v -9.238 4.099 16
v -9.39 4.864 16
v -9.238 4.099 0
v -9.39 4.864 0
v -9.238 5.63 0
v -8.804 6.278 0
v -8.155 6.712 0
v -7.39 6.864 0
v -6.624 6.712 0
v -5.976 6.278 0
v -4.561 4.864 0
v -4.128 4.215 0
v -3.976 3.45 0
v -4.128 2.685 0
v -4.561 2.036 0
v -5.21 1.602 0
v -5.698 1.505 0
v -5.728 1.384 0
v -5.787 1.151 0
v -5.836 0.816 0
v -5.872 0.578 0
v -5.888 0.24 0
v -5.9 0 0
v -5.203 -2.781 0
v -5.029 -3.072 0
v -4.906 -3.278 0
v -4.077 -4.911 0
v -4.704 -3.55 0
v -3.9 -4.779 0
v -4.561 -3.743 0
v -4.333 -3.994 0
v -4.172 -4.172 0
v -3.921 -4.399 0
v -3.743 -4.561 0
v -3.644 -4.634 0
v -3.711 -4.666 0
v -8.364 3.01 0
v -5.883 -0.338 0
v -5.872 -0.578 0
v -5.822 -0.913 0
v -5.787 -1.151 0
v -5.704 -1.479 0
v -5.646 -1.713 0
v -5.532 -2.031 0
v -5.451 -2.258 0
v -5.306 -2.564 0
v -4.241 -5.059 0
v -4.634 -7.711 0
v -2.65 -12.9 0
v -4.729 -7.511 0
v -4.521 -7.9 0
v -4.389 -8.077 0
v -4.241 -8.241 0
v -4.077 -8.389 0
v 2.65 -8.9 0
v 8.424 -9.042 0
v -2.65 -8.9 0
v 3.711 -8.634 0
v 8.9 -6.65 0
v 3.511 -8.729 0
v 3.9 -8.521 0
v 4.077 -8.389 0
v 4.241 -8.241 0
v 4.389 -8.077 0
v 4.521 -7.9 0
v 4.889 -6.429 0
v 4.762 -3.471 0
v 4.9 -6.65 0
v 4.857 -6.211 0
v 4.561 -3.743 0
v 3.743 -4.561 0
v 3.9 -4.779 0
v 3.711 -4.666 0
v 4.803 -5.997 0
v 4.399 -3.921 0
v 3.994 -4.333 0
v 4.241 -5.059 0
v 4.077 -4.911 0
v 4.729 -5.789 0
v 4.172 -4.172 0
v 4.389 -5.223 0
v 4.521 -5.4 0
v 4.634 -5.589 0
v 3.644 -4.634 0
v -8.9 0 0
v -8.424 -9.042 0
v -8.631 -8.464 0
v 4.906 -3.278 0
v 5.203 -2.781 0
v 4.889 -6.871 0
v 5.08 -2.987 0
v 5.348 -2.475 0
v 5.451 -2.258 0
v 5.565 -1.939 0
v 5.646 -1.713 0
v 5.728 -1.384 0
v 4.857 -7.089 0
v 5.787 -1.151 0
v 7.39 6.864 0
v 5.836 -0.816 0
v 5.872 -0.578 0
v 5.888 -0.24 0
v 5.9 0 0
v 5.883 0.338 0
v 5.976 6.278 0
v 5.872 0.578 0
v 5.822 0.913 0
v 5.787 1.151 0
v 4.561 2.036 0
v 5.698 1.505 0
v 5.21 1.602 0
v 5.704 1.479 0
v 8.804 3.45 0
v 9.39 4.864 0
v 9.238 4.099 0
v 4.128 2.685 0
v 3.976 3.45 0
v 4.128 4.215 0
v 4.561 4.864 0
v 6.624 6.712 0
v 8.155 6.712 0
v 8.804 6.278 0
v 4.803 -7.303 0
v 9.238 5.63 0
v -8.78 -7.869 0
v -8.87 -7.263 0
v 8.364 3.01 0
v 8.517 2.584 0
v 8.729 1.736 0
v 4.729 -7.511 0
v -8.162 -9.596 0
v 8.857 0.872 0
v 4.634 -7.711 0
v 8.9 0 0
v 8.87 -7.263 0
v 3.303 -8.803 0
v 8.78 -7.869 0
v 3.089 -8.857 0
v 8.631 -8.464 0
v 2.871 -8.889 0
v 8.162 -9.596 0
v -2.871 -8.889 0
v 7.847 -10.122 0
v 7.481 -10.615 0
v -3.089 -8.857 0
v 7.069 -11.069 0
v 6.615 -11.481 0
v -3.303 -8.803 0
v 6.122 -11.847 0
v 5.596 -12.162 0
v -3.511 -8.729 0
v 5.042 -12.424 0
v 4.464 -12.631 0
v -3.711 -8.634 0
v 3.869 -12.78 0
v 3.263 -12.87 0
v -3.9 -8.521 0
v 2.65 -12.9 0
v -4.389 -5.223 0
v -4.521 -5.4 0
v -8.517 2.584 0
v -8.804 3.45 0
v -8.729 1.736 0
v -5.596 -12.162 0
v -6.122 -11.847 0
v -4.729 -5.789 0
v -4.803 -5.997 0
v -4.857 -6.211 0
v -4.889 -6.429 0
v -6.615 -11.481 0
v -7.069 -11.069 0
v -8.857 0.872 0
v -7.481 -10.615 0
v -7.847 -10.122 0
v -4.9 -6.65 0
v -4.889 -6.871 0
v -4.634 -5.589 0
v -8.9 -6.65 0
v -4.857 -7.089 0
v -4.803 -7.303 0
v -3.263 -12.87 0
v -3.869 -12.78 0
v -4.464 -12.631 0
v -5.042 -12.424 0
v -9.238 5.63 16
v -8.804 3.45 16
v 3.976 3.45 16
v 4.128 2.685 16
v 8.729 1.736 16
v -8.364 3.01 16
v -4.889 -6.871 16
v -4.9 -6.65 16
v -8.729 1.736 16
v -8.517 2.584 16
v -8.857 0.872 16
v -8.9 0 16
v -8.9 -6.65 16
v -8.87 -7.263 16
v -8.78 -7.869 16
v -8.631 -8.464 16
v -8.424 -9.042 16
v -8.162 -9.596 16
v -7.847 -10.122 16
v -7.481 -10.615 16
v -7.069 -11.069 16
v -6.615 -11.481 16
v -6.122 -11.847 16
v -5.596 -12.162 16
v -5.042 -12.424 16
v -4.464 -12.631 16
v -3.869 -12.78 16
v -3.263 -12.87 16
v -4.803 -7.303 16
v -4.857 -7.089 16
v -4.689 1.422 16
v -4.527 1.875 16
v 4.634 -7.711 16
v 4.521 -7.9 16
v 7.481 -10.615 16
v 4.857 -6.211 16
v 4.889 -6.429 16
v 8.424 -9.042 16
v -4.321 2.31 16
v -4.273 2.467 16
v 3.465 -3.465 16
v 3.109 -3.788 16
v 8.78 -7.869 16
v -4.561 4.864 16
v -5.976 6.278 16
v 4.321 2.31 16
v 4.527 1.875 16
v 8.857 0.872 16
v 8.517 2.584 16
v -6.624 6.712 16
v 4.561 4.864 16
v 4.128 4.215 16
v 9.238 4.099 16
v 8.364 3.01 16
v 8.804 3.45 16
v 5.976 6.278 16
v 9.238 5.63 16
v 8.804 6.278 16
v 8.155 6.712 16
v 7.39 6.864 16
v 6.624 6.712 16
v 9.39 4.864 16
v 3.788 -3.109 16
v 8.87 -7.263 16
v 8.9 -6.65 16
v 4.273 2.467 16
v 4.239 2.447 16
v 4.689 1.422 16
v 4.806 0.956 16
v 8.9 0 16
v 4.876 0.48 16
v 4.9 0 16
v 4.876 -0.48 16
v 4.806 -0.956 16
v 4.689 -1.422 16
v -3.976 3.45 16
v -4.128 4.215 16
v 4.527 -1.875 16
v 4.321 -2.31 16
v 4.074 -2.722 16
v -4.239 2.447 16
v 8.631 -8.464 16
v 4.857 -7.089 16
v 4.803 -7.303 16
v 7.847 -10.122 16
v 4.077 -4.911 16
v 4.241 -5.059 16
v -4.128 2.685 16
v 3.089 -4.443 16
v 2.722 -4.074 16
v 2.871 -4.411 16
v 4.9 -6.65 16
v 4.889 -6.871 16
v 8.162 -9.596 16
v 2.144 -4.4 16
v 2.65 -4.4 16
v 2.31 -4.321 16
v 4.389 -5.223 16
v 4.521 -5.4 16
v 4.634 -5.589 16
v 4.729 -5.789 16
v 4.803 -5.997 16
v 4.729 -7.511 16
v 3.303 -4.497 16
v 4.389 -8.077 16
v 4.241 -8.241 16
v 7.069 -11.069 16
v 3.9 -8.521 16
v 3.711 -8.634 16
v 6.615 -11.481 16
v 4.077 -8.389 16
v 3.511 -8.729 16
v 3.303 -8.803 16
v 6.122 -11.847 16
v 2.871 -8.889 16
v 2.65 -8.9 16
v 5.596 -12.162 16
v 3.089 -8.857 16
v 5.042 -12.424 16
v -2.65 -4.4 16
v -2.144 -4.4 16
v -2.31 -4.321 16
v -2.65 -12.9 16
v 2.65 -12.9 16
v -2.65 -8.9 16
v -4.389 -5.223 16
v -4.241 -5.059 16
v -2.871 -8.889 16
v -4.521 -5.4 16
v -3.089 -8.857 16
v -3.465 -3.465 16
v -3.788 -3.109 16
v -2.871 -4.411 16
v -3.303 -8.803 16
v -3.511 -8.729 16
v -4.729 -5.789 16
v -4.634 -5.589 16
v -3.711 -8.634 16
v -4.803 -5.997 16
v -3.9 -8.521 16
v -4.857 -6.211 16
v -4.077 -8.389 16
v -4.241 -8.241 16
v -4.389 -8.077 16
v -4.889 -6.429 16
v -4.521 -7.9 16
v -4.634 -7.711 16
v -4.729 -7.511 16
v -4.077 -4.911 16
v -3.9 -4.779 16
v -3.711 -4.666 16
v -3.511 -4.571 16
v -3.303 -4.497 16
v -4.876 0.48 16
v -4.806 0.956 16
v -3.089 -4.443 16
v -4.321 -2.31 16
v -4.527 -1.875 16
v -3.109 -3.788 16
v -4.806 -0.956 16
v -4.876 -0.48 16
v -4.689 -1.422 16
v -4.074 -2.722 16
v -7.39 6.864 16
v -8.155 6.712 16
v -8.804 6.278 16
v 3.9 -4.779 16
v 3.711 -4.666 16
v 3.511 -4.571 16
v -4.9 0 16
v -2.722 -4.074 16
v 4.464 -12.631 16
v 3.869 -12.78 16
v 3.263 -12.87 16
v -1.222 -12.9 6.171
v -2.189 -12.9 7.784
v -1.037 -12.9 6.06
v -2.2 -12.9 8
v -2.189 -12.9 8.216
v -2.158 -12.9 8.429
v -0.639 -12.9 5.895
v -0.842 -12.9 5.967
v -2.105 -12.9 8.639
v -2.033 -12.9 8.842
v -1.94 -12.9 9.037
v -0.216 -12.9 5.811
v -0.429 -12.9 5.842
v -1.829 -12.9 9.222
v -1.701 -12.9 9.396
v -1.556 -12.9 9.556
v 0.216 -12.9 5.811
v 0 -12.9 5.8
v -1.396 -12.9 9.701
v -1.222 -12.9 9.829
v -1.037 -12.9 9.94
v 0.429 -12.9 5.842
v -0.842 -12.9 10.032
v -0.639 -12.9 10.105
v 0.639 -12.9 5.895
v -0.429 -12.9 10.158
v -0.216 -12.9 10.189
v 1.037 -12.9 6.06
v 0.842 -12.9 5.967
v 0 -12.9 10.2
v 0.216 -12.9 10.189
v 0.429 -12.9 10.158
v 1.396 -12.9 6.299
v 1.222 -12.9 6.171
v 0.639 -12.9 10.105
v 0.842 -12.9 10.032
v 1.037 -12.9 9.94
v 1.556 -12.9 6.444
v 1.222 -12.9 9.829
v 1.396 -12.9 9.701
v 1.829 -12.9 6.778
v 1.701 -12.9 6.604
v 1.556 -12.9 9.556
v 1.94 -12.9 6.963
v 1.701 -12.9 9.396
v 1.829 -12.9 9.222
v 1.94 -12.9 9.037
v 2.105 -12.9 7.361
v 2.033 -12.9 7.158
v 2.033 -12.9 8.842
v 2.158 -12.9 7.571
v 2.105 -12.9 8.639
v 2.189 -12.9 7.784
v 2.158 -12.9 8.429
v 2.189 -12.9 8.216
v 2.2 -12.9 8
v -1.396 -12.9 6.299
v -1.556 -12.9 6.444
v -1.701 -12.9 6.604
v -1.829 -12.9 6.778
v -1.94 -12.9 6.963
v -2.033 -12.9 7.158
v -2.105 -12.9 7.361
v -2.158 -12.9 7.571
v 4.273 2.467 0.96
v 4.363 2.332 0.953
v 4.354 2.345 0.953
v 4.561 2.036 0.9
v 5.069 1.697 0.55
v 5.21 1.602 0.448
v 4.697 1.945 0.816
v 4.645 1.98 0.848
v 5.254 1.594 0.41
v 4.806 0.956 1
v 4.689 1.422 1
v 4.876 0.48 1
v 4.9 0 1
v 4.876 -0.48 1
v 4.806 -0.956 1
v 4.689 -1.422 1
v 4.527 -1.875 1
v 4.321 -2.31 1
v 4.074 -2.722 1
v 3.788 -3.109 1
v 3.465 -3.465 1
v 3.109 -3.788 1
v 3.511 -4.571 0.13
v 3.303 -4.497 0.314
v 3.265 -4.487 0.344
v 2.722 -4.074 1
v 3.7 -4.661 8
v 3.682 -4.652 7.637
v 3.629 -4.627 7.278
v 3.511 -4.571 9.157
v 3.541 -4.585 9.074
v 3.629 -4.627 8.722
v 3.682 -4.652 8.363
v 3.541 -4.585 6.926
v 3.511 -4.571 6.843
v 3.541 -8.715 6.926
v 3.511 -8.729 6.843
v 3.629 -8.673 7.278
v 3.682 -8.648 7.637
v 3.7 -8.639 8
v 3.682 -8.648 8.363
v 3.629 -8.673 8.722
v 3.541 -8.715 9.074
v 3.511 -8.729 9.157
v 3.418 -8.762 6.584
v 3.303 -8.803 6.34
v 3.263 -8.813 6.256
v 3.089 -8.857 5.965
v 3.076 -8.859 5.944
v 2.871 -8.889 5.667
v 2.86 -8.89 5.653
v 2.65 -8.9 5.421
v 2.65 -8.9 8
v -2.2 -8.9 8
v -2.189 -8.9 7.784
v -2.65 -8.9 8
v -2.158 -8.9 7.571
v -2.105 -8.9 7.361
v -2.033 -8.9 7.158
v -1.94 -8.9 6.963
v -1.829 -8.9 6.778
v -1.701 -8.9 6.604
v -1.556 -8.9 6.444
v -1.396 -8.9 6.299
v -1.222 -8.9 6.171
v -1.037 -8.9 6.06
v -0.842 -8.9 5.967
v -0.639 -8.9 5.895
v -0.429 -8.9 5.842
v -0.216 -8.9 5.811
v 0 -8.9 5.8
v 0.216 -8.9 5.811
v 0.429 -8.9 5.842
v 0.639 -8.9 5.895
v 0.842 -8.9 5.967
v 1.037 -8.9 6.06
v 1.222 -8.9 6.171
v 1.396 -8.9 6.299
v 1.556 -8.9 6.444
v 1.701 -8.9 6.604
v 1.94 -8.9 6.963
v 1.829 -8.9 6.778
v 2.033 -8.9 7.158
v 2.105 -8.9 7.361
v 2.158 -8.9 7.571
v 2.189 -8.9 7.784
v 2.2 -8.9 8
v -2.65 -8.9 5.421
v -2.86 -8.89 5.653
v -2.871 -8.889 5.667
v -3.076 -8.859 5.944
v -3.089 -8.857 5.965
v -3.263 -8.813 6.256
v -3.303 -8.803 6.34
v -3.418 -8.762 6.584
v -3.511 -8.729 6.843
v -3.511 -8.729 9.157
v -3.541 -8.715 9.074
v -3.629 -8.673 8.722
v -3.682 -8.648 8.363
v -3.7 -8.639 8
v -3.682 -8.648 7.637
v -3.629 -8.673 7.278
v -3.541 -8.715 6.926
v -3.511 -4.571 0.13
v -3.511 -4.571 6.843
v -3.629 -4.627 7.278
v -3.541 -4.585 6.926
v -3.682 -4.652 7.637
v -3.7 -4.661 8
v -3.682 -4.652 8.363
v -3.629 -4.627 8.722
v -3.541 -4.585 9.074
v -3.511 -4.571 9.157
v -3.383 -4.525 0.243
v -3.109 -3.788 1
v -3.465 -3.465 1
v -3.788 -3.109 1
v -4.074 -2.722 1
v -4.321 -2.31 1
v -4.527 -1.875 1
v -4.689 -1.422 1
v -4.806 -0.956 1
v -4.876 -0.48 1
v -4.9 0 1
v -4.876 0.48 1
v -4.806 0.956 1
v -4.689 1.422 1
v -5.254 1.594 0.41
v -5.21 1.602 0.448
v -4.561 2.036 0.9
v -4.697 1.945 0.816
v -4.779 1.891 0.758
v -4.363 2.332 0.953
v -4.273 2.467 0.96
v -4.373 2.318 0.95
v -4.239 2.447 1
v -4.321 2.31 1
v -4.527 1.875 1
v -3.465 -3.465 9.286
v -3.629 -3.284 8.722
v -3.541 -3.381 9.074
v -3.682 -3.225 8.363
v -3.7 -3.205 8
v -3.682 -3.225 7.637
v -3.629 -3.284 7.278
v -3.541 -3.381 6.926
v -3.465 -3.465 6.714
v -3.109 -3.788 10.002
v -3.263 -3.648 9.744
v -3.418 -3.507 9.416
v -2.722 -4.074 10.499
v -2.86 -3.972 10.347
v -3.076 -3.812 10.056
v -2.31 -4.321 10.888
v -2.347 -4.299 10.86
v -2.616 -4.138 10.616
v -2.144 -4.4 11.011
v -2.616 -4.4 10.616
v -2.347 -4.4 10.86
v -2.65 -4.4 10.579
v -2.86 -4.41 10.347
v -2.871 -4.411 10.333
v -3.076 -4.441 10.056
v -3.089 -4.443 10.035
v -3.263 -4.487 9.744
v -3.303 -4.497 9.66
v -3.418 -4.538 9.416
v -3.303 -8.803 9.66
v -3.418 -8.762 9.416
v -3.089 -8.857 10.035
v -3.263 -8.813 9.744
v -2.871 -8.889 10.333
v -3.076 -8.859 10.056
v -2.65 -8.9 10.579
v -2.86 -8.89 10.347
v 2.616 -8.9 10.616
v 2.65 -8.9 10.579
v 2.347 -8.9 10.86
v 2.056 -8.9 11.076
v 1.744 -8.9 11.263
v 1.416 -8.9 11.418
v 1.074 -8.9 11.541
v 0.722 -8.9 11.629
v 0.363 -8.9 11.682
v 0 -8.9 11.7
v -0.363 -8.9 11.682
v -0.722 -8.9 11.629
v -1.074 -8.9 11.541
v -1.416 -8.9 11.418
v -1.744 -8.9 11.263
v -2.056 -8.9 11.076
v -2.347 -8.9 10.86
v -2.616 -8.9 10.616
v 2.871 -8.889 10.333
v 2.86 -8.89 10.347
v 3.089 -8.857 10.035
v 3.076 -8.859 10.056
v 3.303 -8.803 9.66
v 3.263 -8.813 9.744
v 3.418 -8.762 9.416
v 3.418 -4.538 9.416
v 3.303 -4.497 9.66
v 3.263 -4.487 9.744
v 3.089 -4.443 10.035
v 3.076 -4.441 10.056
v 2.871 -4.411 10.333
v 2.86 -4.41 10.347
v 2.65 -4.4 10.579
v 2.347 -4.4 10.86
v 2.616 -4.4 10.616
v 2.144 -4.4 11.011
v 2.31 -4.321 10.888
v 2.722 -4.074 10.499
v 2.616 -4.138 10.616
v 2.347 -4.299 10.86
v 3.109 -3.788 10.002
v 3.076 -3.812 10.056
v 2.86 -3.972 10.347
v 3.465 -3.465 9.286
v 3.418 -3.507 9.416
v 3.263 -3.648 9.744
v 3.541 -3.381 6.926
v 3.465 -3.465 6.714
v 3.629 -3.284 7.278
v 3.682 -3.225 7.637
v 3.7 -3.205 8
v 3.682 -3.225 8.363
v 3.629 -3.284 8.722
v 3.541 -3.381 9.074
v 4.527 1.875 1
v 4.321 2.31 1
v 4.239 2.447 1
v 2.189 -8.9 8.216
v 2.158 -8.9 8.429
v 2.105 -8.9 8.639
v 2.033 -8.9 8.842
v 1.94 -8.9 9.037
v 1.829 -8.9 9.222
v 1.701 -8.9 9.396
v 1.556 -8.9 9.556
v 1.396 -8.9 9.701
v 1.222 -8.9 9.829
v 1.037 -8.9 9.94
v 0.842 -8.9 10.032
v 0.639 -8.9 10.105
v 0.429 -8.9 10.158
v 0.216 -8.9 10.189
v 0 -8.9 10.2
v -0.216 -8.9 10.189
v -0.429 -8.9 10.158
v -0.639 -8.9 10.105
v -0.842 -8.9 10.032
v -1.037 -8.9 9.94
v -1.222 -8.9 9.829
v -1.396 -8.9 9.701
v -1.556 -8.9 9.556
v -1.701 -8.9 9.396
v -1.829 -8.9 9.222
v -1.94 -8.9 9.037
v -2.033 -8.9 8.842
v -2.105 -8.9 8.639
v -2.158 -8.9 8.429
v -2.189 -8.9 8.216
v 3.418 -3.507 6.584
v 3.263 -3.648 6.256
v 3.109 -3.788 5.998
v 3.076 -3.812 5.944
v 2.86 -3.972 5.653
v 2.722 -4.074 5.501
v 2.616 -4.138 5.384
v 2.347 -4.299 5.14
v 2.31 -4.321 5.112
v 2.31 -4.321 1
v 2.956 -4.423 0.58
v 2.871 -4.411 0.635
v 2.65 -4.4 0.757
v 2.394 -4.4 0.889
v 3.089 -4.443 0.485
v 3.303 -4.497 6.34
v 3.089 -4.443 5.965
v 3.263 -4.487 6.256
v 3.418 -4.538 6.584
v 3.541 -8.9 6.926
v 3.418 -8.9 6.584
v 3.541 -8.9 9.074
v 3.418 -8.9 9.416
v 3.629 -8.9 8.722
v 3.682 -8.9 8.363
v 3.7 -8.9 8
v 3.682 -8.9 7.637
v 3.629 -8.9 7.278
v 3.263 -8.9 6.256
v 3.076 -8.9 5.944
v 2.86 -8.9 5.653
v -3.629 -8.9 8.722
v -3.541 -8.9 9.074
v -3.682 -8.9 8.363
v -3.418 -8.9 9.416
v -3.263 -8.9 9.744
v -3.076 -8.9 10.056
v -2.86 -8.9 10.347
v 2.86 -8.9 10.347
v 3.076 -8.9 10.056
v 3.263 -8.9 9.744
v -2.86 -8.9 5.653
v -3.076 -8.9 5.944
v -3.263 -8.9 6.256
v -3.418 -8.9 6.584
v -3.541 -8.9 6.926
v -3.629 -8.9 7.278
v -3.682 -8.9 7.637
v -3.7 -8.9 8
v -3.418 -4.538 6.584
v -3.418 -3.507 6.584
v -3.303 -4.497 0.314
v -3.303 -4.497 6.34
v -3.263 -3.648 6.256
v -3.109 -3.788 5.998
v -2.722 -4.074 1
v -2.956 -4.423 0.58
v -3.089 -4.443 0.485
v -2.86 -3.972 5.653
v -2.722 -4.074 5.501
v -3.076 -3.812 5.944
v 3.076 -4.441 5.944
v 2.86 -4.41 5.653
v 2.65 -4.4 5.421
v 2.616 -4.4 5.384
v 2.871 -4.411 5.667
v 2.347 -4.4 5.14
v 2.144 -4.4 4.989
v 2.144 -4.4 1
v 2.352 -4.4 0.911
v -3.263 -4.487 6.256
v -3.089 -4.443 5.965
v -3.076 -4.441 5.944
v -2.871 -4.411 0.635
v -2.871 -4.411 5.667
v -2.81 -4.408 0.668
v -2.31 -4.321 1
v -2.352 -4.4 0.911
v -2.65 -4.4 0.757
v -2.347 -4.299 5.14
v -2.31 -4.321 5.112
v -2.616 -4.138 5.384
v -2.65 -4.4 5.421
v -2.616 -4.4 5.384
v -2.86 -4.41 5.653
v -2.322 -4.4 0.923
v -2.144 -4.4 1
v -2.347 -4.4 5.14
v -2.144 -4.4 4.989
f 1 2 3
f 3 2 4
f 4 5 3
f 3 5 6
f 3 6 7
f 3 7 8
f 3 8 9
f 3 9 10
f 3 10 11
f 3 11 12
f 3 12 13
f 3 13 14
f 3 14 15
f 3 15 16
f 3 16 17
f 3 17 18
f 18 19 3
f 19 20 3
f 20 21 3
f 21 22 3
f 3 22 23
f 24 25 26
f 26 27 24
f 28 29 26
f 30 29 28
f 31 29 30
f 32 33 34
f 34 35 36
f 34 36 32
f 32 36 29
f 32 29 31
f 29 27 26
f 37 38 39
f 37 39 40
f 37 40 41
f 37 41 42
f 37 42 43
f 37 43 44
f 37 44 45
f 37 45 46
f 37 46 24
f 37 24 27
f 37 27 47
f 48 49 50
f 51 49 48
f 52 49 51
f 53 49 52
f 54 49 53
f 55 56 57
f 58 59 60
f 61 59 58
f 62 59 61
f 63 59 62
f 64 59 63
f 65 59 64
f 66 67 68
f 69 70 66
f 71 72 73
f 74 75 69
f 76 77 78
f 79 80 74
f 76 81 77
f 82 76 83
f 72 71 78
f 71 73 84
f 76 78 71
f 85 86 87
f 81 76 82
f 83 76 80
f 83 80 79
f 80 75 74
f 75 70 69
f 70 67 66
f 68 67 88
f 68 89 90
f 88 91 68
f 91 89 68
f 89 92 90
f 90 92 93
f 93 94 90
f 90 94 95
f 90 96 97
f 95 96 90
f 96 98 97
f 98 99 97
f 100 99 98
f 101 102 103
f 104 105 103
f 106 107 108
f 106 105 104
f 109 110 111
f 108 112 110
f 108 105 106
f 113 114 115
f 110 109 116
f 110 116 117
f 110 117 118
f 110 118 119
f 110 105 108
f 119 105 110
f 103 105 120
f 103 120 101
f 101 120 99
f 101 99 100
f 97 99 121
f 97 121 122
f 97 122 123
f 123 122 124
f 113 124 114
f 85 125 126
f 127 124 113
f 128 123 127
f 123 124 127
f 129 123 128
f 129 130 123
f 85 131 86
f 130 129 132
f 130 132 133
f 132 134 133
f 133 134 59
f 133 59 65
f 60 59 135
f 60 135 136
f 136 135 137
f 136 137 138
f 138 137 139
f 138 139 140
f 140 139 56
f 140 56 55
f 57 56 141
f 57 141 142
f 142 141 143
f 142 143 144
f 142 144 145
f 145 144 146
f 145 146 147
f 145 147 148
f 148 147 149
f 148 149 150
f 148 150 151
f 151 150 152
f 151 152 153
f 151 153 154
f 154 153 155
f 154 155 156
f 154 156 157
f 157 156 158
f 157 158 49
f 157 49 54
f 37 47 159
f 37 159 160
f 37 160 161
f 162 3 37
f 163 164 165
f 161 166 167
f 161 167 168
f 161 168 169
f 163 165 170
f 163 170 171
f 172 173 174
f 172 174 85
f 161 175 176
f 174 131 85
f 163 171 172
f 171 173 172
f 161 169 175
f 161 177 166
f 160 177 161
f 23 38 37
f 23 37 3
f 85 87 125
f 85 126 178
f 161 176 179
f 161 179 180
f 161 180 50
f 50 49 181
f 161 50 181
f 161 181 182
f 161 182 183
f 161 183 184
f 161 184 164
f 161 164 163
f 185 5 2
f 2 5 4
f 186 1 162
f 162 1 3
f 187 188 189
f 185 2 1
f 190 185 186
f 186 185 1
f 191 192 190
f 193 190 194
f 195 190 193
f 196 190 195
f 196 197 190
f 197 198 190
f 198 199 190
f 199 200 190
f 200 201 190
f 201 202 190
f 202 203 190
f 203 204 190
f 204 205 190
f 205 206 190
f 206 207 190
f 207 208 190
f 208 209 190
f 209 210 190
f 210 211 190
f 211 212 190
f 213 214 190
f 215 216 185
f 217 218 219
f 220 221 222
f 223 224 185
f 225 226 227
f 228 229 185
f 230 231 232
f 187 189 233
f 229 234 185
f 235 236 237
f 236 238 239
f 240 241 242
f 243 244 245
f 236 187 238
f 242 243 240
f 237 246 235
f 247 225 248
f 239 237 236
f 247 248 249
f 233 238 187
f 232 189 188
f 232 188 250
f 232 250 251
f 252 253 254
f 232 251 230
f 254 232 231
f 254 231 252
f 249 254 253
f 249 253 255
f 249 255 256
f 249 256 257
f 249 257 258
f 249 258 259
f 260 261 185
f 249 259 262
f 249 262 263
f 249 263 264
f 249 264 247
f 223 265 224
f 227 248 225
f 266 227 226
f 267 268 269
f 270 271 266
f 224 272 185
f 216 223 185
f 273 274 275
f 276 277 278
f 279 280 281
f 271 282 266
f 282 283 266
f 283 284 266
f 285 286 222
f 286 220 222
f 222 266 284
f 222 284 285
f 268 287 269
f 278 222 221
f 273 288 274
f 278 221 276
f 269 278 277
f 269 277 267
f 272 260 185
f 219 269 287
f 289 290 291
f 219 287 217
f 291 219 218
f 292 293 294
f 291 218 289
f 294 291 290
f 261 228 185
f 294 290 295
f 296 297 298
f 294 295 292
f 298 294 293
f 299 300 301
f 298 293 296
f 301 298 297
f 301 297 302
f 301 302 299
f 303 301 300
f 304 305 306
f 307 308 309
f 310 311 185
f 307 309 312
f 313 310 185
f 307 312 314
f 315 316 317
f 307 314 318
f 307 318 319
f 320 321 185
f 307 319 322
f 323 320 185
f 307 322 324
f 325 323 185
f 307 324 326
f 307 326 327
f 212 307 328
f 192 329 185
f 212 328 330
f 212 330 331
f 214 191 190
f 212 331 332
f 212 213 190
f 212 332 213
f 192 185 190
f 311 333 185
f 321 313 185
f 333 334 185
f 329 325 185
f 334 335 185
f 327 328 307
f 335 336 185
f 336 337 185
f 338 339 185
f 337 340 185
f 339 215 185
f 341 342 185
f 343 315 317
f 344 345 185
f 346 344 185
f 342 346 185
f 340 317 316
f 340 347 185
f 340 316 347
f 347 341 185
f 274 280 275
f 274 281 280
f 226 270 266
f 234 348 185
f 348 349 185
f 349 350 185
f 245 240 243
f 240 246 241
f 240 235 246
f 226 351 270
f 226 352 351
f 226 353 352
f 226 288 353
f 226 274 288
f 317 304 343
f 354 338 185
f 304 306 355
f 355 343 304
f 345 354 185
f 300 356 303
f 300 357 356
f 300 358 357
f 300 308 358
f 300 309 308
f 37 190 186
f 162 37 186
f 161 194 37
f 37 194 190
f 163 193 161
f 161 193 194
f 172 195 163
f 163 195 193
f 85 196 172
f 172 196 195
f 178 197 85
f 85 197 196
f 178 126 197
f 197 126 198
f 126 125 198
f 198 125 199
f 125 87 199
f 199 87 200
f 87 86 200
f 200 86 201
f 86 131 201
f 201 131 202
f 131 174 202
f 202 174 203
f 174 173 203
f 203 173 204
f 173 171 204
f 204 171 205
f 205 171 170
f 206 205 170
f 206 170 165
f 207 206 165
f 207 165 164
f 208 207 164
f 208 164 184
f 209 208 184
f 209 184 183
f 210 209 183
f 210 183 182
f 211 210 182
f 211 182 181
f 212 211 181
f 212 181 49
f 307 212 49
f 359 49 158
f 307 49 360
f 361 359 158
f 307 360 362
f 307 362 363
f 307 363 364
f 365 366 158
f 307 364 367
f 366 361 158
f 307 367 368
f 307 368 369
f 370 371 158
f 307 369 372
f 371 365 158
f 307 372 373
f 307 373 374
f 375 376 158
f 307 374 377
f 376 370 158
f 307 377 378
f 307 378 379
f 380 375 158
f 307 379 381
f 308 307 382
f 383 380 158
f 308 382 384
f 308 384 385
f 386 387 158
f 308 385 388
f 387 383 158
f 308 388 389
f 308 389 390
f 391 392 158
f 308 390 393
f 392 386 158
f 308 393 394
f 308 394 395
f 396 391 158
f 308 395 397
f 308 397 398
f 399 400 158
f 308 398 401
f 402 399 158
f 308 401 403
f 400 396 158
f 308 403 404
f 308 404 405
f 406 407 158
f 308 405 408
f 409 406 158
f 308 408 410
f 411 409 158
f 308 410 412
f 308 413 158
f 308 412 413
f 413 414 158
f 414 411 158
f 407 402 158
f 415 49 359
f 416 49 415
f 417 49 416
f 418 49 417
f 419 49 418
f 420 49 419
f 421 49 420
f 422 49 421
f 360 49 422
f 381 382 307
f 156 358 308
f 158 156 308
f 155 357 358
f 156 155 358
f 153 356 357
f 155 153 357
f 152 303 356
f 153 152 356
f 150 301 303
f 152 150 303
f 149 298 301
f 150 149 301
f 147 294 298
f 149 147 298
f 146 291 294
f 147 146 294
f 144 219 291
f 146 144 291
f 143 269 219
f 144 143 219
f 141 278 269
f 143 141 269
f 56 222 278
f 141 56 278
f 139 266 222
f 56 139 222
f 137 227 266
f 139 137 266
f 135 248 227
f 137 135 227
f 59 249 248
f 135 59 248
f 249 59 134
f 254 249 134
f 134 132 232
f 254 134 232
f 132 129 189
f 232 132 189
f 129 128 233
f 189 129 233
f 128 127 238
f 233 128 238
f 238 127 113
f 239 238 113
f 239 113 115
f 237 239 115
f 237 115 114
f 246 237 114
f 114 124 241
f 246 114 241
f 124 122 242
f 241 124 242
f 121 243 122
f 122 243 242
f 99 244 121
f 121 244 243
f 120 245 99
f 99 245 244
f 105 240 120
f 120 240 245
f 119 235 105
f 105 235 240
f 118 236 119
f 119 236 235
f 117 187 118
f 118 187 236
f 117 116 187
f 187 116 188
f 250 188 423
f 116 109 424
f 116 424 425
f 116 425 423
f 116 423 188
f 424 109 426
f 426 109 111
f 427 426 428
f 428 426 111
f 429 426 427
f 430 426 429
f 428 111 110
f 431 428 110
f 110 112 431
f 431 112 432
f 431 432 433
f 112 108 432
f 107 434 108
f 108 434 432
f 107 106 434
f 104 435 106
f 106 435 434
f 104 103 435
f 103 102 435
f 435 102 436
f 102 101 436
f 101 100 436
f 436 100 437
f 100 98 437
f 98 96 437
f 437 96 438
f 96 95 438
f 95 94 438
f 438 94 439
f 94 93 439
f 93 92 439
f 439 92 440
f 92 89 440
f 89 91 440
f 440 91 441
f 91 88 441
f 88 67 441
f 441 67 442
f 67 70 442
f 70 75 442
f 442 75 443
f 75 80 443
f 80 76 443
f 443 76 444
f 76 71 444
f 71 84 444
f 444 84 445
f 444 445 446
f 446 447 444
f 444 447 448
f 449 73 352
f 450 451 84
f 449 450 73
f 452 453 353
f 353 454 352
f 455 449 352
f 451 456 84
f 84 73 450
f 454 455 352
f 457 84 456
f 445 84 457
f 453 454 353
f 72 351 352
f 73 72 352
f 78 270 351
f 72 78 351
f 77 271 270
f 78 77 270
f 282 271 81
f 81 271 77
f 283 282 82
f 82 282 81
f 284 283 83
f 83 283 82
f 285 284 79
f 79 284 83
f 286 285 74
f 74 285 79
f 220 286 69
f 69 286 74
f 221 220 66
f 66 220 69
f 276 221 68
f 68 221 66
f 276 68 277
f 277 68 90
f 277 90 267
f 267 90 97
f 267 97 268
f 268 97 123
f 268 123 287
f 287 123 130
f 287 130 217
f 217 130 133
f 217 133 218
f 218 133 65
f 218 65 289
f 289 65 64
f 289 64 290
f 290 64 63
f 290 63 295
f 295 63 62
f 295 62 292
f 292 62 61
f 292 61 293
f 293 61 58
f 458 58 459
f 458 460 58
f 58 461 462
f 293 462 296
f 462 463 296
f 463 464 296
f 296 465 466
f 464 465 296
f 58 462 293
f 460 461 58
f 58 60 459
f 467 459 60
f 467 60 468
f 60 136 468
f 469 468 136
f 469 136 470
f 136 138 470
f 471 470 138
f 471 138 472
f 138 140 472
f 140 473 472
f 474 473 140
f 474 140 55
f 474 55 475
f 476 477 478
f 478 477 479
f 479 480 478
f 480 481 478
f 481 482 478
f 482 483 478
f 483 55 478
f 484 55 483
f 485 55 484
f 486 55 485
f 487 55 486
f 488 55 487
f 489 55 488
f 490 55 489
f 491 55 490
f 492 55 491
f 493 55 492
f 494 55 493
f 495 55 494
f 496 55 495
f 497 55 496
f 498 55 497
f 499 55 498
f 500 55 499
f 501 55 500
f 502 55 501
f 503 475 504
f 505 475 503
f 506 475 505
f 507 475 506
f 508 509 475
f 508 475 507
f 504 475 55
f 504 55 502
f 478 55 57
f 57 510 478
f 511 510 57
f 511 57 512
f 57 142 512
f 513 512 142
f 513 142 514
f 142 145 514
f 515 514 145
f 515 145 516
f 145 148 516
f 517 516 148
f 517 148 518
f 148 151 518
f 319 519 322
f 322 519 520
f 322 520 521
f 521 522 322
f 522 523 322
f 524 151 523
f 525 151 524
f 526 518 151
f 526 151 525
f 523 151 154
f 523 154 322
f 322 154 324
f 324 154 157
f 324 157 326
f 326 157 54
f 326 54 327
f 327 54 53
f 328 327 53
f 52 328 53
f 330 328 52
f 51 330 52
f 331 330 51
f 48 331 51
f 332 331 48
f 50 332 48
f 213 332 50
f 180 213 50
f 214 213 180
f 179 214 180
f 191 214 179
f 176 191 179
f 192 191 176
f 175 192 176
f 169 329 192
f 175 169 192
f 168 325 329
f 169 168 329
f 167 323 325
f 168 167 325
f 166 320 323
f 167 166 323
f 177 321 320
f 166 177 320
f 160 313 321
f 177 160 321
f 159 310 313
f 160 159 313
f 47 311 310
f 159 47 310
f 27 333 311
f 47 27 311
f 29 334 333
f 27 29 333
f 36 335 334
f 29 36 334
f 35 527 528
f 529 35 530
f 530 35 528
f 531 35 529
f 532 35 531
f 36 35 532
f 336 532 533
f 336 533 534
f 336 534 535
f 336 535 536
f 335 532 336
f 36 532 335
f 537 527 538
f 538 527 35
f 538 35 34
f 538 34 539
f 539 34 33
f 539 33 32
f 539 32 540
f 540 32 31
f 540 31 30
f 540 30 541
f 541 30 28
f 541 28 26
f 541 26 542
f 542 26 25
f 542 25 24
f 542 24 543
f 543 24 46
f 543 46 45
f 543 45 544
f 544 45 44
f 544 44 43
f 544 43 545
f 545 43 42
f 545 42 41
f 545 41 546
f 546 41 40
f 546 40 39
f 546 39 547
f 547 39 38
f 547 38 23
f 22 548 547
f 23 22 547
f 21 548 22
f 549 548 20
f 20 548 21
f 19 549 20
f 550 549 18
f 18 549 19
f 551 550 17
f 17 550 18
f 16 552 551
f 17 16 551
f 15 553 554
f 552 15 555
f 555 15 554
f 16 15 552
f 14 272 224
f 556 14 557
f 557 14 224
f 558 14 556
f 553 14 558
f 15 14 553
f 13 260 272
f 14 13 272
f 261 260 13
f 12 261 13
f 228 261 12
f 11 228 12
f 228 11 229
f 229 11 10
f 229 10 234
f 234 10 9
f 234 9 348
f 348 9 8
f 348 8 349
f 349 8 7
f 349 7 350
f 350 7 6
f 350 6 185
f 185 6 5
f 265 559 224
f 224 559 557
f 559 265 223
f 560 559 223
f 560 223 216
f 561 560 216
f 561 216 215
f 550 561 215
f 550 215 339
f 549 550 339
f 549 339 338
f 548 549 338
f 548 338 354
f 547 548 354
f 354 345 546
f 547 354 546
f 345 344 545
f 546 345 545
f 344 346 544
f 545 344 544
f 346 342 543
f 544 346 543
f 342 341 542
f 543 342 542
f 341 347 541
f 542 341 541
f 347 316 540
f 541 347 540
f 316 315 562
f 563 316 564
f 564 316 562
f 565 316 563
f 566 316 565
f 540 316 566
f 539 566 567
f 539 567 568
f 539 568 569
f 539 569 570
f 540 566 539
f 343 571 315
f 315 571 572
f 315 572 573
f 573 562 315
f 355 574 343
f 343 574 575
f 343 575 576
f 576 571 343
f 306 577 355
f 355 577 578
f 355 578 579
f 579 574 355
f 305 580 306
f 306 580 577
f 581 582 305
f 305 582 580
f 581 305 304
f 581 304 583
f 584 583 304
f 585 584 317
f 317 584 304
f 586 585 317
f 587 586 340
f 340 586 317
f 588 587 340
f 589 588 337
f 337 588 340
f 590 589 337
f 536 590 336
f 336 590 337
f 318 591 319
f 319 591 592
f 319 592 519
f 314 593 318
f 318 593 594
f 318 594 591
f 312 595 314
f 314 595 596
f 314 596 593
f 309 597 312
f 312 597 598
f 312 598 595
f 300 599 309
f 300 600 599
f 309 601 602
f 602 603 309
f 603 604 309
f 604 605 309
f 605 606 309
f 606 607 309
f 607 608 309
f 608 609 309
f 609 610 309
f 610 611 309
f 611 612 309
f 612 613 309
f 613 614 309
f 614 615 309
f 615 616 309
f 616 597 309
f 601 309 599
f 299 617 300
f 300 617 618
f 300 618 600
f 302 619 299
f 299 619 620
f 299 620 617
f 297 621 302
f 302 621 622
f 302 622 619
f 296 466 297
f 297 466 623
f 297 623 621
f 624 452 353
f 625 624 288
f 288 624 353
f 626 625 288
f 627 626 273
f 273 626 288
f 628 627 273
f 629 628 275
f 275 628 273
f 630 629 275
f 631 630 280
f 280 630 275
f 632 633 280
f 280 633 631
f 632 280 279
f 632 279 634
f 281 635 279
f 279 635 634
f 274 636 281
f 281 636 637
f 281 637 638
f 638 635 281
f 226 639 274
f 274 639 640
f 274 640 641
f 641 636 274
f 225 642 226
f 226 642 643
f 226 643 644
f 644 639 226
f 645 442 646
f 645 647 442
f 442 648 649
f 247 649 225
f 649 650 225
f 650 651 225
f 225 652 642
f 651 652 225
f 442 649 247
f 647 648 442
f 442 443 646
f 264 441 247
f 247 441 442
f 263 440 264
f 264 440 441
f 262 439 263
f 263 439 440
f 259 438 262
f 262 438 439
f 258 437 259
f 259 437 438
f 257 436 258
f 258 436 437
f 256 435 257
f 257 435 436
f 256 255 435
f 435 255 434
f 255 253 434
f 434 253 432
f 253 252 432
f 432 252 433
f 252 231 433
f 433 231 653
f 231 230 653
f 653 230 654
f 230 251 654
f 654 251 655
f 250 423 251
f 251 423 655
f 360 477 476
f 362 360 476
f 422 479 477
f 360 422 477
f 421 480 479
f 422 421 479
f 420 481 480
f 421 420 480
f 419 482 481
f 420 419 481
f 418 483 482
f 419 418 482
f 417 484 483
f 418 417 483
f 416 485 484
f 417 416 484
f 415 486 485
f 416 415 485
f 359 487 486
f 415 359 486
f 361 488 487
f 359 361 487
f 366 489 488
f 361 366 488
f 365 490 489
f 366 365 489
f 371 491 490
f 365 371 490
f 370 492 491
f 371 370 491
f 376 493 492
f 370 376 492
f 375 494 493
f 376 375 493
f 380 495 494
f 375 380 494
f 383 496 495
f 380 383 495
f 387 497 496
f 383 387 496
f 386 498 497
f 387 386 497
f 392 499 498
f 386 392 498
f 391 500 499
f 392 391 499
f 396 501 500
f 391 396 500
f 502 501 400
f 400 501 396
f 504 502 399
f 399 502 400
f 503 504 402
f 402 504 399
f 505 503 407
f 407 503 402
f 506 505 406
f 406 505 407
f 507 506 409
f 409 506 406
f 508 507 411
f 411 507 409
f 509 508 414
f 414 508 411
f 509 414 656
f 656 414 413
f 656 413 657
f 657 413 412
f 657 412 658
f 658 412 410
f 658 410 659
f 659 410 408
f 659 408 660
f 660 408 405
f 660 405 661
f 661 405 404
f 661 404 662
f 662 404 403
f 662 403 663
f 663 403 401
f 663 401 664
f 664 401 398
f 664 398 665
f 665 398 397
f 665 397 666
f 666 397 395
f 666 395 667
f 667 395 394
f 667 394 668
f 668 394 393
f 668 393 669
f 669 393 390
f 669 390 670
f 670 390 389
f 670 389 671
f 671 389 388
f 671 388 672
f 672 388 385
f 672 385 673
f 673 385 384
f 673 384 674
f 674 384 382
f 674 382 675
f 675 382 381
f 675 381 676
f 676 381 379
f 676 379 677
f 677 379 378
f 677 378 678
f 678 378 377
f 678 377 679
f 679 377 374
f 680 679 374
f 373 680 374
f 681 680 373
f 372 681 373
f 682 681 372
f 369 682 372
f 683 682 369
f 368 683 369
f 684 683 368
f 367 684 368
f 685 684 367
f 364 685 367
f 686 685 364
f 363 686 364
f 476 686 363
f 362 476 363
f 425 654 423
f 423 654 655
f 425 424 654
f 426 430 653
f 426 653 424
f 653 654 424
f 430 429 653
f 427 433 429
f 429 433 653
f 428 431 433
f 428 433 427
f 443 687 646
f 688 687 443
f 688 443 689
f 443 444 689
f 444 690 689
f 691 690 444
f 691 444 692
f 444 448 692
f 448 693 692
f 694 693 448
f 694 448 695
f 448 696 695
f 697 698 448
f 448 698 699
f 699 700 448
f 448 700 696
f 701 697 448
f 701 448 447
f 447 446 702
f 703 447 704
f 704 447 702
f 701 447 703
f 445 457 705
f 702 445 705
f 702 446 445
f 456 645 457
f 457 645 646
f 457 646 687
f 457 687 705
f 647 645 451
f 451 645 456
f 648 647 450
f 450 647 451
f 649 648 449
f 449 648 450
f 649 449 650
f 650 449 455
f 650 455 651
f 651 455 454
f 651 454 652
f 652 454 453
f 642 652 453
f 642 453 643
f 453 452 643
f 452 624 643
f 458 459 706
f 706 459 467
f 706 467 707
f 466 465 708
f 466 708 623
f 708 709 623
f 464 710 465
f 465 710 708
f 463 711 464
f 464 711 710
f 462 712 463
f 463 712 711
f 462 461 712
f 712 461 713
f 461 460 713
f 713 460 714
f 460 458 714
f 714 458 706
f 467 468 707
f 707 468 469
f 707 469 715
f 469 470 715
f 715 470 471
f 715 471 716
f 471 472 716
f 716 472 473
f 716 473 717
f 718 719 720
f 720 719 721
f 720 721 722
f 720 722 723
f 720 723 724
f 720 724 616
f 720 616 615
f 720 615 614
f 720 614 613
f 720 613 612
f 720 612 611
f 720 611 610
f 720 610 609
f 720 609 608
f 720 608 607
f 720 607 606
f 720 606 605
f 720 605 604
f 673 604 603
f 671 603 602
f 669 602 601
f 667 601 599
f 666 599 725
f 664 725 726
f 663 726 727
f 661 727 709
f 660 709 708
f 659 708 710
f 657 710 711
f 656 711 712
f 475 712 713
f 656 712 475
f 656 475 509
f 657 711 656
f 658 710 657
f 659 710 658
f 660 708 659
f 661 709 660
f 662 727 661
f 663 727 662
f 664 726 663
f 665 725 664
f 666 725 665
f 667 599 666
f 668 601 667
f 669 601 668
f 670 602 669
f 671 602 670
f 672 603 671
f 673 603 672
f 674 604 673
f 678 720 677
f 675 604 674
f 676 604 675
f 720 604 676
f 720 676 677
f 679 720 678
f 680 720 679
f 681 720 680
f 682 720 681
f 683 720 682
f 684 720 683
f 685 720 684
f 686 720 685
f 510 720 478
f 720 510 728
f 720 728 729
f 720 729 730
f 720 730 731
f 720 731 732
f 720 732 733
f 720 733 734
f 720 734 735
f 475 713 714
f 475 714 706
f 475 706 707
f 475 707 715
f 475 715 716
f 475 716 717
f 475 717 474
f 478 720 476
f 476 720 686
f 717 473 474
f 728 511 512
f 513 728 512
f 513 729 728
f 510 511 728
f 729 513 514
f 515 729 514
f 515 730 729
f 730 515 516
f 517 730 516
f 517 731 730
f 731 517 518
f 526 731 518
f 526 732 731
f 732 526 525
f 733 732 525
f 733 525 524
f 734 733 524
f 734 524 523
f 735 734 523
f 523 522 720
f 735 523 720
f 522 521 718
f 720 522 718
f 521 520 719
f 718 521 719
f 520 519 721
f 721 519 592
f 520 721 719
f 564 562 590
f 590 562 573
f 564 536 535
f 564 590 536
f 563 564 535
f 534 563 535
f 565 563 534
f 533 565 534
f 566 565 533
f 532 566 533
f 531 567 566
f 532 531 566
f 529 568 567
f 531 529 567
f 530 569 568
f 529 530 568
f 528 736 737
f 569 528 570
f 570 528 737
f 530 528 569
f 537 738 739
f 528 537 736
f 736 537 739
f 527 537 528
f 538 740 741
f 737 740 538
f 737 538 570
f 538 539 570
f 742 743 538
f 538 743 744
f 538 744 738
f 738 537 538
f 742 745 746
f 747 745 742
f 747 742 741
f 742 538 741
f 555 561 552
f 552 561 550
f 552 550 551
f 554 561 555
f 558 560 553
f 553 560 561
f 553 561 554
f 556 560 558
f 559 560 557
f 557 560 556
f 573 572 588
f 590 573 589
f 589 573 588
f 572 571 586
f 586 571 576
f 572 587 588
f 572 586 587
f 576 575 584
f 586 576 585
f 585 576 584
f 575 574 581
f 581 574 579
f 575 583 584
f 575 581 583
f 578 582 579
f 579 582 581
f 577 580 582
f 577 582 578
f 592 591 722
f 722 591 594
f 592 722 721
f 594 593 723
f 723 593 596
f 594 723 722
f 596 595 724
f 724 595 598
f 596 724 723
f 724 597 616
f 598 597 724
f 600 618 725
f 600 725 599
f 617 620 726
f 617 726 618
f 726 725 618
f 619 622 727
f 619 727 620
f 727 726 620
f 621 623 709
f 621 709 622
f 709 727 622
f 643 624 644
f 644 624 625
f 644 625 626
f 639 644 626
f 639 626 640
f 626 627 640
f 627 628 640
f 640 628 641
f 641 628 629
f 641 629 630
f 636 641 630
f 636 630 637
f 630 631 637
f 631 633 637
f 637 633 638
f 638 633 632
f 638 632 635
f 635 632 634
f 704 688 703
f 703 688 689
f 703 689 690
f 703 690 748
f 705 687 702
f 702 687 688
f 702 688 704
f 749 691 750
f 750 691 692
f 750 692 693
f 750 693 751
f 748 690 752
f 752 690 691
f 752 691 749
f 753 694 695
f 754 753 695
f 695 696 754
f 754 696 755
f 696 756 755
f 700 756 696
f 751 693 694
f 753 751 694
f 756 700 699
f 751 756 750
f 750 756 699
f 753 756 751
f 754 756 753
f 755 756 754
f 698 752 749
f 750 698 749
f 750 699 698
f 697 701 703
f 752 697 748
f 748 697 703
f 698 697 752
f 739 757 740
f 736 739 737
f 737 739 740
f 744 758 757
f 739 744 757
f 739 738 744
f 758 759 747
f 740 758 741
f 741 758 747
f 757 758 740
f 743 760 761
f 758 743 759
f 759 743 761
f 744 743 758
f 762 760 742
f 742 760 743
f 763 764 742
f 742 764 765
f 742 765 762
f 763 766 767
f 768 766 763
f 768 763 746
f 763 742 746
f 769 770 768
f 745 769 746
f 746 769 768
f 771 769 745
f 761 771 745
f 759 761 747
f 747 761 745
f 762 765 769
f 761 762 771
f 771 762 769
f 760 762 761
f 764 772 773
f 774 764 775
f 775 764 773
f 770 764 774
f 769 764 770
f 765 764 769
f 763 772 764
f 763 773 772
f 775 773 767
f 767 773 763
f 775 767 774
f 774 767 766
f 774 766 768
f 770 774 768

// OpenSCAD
// file: cylinder_clip.scad
use <../utilities.scad>;

module cylinder_clip(r=1,t=3,opening_angle=120,wing_length=2,wing_angle=45,flat_w=10,flat_t=3,h=10,$fn=$fn){
	union(){
		difference(){
			hull(){
				cylinder(r=r+t,$fn=$fn,h=h);
				translate([-flat_w/2,-r-flat_t,0]) cube([flat_w,0.1,h]);
			}
			cylinder(r=r,$fn=$fn,h=99999,center=true);
			cylinder(r1=r+2,r2=r,$fn=$fn,h=2,center=true);
			scale([tan(opening_angle/2),1,1]) rotate([0,0,45]) translate([0,0,-1]) cube([1,1,1]*9999);
		}
		reflect([1,0,0]) translate([sin(opening_angle/2),cos(opening_angle/2),0]*(r+t/2)) hull() repeat([sin(wing_angle),cos(wing_angle),0]*wing_length,2)
			cylinder(r=t/2,h=h,$fn=16);
			
	}
}

//cylinder_clip(r=3,t=2,flat_w=6);
union(){
	cylinder_clip(r=21,t=4.5,flat_t=10,opening_angle=100,$fn=64);
	translate([-5,-22-5-20,0]) cube([10,20,10]);
}
// main file
use <../utilities.scad>;
use <./cylinder_clip.scad>;

$fn=64;
rack_r = 10/2-0.1;
t=4;
h=16;
standoff = 4+t;
cr = (standoff-t+0.5)/2;

difference(){
	cylinder_clip(r=rack_r,t=t,flat_t=standoff,flat_w=2*rack_r+2*t,h=h);
	translate([0,-rack_r-4,h/2]){
		//screw_y(4,fudge=0.9,h=999,shaft=true,extraheight=0);
		rotate([90,0,0]) cylinder(r=2.2,h=999,center=true);
		rotate([-90,0,0]) cylinder(r=3.7,h=999);
	}
	reflect([1,0,0]) translate([-rack_r+cr,-rack_r-standoff+t+cr,-1]) difference(){
		mirror([1,0,0]) mirror([0,1,0]) cube([999,999,999]);
		cylinder(r=t+cr,h=999,center=true);
	}
	hull() reflect([1,0,0]) translate([-rack_r+cr,-rack_r-standoff+t+cr,0]) cylinder(r=cr,h=999,center=true);
}
